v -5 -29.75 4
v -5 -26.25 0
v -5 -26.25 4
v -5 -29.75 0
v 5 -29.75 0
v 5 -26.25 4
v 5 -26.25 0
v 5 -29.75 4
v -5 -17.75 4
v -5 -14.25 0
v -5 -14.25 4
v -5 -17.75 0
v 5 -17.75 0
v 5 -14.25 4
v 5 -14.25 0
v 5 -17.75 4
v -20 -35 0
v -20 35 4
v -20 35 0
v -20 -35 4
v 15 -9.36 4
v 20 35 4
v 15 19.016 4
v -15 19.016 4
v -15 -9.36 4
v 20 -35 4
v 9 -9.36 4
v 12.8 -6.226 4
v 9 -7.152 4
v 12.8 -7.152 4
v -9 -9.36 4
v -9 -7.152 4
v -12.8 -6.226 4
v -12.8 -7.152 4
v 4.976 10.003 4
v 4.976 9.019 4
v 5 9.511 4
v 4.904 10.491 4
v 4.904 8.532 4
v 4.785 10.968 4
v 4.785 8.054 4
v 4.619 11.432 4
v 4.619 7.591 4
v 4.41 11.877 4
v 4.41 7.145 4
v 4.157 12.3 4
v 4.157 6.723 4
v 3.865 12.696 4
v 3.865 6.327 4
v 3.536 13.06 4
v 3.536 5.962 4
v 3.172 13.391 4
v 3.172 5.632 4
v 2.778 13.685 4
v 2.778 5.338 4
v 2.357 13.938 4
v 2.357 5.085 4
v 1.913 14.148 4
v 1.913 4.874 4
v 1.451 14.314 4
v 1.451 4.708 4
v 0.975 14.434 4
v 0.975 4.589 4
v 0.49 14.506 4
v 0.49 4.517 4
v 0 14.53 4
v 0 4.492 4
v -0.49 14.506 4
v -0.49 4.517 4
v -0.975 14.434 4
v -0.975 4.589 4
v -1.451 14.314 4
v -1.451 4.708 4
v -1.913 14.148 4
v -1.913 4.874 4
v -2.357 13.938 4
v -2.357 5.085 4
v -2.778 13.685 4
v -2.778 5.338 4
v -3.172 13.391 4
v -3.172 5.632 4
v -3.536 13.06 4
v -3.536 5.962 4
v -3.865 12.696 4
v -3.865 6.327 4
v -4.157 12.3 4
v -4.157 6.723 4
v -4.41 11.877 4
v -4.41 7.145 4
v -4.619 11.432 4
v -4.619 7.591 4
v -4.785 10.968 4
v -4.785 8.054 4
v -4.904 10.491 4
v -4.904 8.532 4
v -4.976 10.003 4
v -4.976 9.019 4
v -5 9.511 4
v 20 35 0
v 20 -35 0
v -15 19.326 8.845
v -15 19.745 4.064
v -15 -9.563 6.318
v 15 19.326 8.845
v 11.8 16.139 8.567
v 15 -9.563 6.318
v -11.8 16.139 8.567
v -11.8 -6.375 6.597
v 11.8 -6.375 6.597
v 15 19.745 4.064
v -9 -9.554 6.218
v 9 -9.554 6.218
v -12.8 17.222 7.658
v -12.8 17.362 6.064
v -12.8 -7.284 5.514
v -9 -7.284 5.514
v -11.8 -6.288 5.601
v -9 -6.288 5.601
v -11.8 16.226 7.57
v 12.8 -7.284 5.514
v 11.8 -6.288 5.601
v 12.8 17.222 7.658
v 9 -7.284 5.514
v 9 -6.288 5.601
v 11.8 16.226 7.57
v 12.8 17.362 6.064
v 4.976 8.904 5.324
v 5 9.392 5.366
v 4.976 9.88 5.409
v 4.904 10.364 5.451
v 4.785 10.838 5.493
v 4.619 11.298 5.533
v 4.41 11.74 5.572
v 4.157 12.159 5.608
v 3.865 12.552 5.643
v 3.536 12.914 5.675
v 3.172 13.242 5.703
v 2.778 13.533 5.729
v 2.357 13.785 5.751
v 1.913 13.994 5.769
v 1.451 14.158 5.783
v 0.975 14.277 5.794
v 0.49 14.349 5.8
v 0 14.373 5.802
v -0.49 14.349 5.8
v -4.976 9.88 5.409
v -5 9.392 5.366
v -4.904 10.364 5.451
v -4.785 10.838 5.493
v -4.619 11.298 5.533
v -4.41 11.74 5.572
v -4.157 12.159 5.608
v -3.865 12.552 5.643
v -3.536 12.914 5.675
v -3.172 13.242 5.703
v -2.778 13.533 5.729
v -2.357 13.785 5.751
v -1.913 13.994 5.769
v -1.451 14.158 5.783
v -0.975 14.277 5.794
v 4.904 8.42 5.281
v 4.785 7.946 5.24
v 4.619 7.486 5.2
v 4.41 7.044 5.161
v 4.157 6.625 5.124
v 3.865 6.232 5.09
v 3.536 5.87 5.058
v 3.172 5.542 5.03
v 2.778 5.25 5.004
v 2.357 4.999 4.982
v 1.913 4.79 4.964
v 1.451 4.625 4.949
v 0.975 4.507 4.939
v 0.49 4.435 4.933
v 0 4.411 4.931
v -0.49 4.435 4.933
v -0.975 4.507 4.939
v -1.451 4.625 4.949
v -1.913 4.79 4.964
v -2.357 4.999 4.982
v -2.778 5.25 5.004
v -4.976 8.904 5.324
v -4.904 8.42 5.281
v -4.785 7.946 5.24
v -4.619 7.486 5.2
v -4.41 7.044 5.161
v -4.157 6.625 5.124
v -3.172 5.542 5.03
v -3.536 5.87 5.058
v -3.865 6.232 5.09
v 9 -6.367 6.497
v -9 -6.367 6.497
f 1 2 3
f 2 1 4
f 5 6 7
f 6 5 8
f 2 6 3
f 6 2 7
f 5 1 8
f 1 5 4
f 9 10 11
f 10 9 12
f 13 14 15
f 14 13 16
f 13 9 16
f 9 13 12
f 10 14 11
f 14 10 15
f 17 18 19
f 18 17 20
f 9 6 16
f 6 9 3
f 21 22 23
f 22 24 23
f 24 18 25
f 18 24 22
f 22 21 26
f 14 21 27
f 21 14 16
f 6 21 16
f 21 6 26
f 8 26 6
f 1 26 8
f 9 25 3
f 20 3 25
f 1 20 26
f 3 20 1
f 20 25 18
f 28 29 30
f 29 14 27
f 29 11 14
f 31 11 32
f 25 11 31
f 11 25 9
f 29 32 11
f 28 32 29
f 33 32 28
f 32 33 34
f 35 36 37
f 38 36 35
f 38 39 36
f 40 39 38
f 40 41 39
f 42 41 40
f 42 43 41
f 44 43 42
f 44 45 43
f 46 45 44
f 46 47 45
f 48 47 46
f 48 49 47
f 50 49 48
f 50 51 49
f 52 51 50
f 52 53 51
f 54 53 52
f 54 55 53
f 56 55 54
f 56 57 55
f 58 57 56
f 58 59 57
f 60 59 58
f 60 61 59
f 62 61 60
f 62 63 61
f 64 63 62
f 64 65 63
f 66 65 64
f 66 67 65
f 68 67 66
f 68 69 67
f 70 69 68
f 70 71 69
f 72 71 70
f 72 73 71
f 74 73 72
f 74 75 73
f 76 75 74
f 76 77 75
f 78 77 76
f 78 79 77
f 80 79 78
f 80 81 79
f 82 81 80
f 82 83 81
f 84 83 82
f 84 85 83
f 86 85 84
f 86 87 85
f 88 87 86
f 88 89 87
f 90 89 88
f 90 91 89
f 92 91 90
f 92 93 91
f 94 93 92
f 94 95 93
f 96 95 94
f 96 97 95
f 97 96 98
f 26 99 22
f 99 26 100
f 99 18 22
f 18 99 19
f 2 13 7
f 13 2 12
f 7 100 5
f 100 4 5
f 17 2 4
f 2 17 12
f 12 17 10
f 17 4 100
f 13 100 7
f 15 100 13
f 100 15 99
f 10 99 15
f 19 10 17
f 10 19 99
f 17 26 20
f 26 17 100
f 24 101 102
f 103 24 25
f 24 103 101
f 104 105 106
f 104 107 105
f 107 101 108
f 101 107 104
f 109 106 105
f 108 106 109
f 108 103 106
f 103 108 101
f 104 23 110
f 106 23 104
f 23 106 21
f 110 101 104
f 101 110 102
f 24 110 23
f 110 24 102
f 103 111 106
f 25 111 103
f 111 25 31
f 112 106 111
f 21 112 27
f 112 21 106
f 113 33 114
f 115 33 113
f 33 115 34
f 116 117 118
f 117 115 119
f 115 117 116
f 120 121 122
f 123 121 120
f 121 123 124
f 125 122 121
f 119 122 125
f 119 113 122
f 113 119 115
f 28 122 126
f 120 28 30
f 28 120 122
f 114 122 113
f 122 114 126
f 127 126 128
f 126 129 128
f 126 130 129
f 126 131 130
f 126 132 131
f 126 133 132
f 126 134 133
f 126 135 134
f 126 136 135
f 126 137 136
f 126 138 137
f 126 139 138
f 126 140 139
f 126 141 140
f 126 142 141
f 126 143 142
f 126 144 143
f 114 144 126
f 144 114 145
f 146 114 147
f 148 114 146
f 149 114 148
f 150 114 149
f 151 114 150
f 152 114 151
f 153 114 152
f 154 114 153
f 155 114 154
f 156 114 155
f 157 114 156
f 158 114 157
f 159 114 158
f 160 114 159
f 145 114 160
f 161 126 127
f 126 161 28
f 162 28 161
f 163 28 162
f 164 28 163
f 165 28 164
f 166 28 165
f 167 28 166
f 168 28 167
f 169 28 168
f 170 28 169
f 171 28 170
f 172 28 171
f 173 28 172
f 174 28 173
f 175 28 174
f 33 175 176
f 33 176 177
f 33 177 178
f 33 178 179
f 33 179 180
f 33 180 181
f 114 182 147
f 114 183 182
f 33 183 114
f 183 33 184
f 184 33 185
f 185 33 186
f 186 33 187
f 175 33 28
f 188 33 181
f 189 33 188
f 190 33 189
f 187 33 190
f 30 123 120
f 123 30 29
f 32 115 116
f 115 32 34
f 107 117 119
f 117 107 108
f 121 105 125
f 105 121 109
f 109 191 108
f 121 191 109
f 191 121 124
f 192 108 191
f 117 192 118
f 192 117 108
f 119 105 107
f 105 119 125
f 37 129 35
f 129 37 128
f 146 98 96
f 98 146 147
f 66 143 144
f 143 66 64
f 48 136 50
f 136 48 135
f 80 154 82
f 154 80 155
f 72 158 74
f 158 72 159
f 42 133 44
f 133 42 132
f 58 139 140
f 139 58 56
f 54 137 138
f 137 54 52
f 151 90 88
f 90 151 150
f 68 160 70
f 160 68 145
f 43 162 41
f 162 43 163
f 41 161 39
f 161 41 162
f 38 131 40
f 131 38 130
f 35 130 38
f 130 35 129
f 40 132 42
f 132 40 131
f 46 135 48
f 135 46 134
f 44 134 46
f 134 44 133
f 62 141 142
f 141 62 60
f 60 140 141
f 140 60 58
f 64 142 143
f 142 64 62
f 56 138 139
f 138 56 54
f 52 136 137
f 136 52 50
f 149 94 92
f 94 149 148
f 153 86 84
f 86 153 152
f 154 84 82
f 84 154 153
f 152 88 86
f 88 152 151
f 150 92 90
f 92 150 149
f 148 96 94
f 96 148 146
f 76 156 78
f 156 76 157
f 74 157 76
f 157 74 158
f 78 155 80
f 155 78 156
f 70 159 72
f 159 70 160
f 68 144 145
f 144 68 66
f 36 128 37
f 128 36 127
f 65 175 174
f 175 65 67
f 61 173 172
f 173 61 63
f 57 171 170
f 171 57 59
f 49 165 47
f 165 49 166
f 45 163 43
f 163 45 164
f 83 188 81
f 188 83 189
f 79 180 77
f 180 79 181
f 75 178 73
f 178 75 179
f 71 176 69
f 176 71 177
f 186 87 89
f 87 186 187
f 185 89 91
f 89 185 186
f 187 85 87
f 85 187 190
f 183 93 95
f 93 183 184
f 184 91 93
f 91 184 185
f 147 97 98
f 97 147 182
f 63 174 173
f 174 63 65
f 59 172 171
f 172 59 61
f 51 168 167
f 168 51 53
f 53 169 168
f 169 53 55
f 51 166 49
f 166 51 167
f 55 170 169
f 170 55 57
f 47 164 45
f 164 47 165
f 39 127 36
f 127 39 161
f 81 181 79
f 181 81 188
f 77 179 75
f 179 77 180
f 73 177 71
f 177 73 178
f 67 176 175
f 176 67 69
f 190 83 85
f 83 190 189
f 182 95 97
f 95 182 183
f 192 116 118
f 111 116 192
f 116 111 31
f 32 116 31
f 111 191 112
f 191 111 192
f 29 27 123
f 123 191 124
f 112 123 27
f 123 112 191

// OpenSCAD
// Forward-facing mount for the Raspberry Pi Camera Module v1 (OV5647).
//
// DESIGN CHOICE AND WHY: no verified mechanical drawing giving the exact
// mounting-hole positions could be found (checked raspberrypi-spy, Arducam,
// Geekworm, UCTronics - all confirm the 25x24mm PCB footprint but none gave
// precise hole coordinates). Guessing hole positions risks a print that
// physically cannot be screwed down. Instead, this holds the board with a
// friction-fit pocket sized to the well-corroborated PCB envelope, with a
// retention lip over the edges - no dependence on hole position at all.
//
// VERIFY BEFORE PRINTING: measure your actual physical board and adjust
// board_w/board_h/board_thickness below if it differs even slightly, since
// the pocket clearance is intentionally tight (friction fit).

// ---- Measured/assumed parameters (mm) ----
board_w = 25;           // PCB width (corroborated: raspberrypi-spy, Arducam, Geekworm)
board_h = 24;           // PCB height
board_thickness = 1.2;  // PCB thickness (~1mm typical, +margin)
pocket_clearance = 0.3; // per-side clearance for friction fit - tune after test print

lens_hole_d = 10;       // generous clearance around the lens barrel - VERIFY against
                        // your actual board; the lens module itself is roughly 8mm,
                        // this is not from a verified drawing, treat as a first guess
lens_offset_from_top = 8; // approx lens center distance from PCB top edge - ASSUMED,
                           // verify against physical board before printing

ribbon_slot_w = 18;     // flex ribbon cable exit slot width
ribbon_slot_h = 2.5;    // slot height (ribbon is thin; add margin over ~1mm cable)

wall = 2.2;             // holder wall thickness
lip_overlap = 1.0;      // how far the retention lip reaches over the board edge
lip_thickness = 1.0;    // lip thickness (keep thin so it can flex slightly on insert)

base_w = 40;            // mounting base plate width
base_h = 70;            // mounting base plate depth - elongated so the zip-tie
                         // zone (rear) and the camera pocket (front) don't
                         // overlap; see layout note below
base_thickness = 4;

tilt_deg = 5;           // slight downward tilt, adjust once mounting height/angle is known

// Zip-tie slots: generic, adjustable mount that doesn't assume a specific
// frame-tube diameter - wrap a zip-tie through both slots around whatever
// the actual mounting point turns out to be. Kept entirely within the rear
// third of the base, clear of the camera pocket above, so the tie has an
// unobstructed top-to-bottom path and something to actually wrap around
// between the two slots.
tie_slot_w = 3.5;
tie_slot_l = 10;
tie_zone_depth = 25;      // rear region reserved for the zip-tie wrap
tie_slot_from_rear = 7;   // first slot's distance from the rear edge
tie_slot_gap = 12;        // gap between the two slots - the tube/bar sits here

$fn = 64;

module camera_pocket() {
    pocket_w = board_w + 2 * pocket_clearance;
    pocket_h = board_h + 2 * pocket_clearance;
    pocket_depth = board_thickness + 0.4;

    difference() {
        // Outer holder shell
        translate([-pocket_w/2 - wall, -pocket_h/2 - wall, 0])
            cube([pocket_w + 2*wall, pocket_h + 2*wall, pocket_depth + lip_thickness + wall]);

        // Board pocket (open at the front for the lens, open at bottom for insertion).
        // Height stops exactly at wall + pocket_depth - it must NOT overcut into
        // the lip_thickness region above, or there is no material left to form
        // the retention lip at all (an earlier version added a +1 overcut margin
        // here that did exactly this, consuming the entire 1mm lip and leaving
        // the subsequent lip cut operating on already-void, degenerate geometry -
        // found via inspecting the isolated module's exported volume count).
        translate([-pocket_w/2, -pocket_h/2, wall])
            cube([pocket_w, pocket_h, pocket_depth]);

        // Retention lip cut - leaves a lip of lip_thickness around the top
        translate([-pocket_w/2 + lip_overlap, -pocket_h/2 + lip_overlap, wall + pocket_depth])
            cube([pocket_w - 2*lip_overlap, pocket_h - 2*lip_overlap, lip_thickness + 1]);

        // Lens hole, offset toward the "top" (away from ribbon exit)
        translate([0, pocket_h/2 - lens_offset_from_top, -1])
            cylinder(d = lens_hole_d, h = wall + 2);

        // Ribbon cable exit slot, opposite the lens side
        translate([-ribbon_slot_w/2, -pocket_h/2 - wall - 1, wall])
            cube([ribbon_slot_w, wall + 2, ribbon_slot_h]);
    }
}

module mount_base() {
    rear_edge = -base_h/2;
    slot1_y = rear_edge + tie_slot_from_rear;
    slot2_y = slot1_y + tie_slot_gap;

    difference() {
        translate([-base_w/2, -base_h/2, 0])
            cube([base_w, base_h, base_thickness]);

        // Both zip-tie slots, confined to the rear tie_zone_depth region -
        // clear of the camera pocket, which sits in the front region only.
        for (y = [slot1_y, slot2_y]) {
            translate([-tie_slot_l/2, y - tie_slot_w/2, -1])
                cube([tie_slot_l, tie_slot_w, base_thickness + 2]);
        }
    }
}

module camera_mount_assembly() {
    // Camera pocket sits entirely in the front region, past the rear
    // tie_zone_depth, with a small margin so it cannot overhang the base's
    // front edge either (checked against pocket_h + pocket_clearance).
    pocket_h_total = board_h + 2 * pocket_clearance;
    front_region_center = -base_h/2 + tie_zone_depth + pocket_h_total/2 + 3;

    // Embedded slightly into the base (not sitting exactly flush on top of
    // it) so the tilted pocket's coincident bottom face has genuine
    // overlapping material to fuse with, rather than a knife-edge touch.
    embed_depth = 1.2;
    union() {
        mount_base();
        translate([0, front_region_center, base_thickness - embed_depth])
            rotate([tilt_deg, 0, 0])
            camera_pocket();
    }
}

camera_mount_assembly();
